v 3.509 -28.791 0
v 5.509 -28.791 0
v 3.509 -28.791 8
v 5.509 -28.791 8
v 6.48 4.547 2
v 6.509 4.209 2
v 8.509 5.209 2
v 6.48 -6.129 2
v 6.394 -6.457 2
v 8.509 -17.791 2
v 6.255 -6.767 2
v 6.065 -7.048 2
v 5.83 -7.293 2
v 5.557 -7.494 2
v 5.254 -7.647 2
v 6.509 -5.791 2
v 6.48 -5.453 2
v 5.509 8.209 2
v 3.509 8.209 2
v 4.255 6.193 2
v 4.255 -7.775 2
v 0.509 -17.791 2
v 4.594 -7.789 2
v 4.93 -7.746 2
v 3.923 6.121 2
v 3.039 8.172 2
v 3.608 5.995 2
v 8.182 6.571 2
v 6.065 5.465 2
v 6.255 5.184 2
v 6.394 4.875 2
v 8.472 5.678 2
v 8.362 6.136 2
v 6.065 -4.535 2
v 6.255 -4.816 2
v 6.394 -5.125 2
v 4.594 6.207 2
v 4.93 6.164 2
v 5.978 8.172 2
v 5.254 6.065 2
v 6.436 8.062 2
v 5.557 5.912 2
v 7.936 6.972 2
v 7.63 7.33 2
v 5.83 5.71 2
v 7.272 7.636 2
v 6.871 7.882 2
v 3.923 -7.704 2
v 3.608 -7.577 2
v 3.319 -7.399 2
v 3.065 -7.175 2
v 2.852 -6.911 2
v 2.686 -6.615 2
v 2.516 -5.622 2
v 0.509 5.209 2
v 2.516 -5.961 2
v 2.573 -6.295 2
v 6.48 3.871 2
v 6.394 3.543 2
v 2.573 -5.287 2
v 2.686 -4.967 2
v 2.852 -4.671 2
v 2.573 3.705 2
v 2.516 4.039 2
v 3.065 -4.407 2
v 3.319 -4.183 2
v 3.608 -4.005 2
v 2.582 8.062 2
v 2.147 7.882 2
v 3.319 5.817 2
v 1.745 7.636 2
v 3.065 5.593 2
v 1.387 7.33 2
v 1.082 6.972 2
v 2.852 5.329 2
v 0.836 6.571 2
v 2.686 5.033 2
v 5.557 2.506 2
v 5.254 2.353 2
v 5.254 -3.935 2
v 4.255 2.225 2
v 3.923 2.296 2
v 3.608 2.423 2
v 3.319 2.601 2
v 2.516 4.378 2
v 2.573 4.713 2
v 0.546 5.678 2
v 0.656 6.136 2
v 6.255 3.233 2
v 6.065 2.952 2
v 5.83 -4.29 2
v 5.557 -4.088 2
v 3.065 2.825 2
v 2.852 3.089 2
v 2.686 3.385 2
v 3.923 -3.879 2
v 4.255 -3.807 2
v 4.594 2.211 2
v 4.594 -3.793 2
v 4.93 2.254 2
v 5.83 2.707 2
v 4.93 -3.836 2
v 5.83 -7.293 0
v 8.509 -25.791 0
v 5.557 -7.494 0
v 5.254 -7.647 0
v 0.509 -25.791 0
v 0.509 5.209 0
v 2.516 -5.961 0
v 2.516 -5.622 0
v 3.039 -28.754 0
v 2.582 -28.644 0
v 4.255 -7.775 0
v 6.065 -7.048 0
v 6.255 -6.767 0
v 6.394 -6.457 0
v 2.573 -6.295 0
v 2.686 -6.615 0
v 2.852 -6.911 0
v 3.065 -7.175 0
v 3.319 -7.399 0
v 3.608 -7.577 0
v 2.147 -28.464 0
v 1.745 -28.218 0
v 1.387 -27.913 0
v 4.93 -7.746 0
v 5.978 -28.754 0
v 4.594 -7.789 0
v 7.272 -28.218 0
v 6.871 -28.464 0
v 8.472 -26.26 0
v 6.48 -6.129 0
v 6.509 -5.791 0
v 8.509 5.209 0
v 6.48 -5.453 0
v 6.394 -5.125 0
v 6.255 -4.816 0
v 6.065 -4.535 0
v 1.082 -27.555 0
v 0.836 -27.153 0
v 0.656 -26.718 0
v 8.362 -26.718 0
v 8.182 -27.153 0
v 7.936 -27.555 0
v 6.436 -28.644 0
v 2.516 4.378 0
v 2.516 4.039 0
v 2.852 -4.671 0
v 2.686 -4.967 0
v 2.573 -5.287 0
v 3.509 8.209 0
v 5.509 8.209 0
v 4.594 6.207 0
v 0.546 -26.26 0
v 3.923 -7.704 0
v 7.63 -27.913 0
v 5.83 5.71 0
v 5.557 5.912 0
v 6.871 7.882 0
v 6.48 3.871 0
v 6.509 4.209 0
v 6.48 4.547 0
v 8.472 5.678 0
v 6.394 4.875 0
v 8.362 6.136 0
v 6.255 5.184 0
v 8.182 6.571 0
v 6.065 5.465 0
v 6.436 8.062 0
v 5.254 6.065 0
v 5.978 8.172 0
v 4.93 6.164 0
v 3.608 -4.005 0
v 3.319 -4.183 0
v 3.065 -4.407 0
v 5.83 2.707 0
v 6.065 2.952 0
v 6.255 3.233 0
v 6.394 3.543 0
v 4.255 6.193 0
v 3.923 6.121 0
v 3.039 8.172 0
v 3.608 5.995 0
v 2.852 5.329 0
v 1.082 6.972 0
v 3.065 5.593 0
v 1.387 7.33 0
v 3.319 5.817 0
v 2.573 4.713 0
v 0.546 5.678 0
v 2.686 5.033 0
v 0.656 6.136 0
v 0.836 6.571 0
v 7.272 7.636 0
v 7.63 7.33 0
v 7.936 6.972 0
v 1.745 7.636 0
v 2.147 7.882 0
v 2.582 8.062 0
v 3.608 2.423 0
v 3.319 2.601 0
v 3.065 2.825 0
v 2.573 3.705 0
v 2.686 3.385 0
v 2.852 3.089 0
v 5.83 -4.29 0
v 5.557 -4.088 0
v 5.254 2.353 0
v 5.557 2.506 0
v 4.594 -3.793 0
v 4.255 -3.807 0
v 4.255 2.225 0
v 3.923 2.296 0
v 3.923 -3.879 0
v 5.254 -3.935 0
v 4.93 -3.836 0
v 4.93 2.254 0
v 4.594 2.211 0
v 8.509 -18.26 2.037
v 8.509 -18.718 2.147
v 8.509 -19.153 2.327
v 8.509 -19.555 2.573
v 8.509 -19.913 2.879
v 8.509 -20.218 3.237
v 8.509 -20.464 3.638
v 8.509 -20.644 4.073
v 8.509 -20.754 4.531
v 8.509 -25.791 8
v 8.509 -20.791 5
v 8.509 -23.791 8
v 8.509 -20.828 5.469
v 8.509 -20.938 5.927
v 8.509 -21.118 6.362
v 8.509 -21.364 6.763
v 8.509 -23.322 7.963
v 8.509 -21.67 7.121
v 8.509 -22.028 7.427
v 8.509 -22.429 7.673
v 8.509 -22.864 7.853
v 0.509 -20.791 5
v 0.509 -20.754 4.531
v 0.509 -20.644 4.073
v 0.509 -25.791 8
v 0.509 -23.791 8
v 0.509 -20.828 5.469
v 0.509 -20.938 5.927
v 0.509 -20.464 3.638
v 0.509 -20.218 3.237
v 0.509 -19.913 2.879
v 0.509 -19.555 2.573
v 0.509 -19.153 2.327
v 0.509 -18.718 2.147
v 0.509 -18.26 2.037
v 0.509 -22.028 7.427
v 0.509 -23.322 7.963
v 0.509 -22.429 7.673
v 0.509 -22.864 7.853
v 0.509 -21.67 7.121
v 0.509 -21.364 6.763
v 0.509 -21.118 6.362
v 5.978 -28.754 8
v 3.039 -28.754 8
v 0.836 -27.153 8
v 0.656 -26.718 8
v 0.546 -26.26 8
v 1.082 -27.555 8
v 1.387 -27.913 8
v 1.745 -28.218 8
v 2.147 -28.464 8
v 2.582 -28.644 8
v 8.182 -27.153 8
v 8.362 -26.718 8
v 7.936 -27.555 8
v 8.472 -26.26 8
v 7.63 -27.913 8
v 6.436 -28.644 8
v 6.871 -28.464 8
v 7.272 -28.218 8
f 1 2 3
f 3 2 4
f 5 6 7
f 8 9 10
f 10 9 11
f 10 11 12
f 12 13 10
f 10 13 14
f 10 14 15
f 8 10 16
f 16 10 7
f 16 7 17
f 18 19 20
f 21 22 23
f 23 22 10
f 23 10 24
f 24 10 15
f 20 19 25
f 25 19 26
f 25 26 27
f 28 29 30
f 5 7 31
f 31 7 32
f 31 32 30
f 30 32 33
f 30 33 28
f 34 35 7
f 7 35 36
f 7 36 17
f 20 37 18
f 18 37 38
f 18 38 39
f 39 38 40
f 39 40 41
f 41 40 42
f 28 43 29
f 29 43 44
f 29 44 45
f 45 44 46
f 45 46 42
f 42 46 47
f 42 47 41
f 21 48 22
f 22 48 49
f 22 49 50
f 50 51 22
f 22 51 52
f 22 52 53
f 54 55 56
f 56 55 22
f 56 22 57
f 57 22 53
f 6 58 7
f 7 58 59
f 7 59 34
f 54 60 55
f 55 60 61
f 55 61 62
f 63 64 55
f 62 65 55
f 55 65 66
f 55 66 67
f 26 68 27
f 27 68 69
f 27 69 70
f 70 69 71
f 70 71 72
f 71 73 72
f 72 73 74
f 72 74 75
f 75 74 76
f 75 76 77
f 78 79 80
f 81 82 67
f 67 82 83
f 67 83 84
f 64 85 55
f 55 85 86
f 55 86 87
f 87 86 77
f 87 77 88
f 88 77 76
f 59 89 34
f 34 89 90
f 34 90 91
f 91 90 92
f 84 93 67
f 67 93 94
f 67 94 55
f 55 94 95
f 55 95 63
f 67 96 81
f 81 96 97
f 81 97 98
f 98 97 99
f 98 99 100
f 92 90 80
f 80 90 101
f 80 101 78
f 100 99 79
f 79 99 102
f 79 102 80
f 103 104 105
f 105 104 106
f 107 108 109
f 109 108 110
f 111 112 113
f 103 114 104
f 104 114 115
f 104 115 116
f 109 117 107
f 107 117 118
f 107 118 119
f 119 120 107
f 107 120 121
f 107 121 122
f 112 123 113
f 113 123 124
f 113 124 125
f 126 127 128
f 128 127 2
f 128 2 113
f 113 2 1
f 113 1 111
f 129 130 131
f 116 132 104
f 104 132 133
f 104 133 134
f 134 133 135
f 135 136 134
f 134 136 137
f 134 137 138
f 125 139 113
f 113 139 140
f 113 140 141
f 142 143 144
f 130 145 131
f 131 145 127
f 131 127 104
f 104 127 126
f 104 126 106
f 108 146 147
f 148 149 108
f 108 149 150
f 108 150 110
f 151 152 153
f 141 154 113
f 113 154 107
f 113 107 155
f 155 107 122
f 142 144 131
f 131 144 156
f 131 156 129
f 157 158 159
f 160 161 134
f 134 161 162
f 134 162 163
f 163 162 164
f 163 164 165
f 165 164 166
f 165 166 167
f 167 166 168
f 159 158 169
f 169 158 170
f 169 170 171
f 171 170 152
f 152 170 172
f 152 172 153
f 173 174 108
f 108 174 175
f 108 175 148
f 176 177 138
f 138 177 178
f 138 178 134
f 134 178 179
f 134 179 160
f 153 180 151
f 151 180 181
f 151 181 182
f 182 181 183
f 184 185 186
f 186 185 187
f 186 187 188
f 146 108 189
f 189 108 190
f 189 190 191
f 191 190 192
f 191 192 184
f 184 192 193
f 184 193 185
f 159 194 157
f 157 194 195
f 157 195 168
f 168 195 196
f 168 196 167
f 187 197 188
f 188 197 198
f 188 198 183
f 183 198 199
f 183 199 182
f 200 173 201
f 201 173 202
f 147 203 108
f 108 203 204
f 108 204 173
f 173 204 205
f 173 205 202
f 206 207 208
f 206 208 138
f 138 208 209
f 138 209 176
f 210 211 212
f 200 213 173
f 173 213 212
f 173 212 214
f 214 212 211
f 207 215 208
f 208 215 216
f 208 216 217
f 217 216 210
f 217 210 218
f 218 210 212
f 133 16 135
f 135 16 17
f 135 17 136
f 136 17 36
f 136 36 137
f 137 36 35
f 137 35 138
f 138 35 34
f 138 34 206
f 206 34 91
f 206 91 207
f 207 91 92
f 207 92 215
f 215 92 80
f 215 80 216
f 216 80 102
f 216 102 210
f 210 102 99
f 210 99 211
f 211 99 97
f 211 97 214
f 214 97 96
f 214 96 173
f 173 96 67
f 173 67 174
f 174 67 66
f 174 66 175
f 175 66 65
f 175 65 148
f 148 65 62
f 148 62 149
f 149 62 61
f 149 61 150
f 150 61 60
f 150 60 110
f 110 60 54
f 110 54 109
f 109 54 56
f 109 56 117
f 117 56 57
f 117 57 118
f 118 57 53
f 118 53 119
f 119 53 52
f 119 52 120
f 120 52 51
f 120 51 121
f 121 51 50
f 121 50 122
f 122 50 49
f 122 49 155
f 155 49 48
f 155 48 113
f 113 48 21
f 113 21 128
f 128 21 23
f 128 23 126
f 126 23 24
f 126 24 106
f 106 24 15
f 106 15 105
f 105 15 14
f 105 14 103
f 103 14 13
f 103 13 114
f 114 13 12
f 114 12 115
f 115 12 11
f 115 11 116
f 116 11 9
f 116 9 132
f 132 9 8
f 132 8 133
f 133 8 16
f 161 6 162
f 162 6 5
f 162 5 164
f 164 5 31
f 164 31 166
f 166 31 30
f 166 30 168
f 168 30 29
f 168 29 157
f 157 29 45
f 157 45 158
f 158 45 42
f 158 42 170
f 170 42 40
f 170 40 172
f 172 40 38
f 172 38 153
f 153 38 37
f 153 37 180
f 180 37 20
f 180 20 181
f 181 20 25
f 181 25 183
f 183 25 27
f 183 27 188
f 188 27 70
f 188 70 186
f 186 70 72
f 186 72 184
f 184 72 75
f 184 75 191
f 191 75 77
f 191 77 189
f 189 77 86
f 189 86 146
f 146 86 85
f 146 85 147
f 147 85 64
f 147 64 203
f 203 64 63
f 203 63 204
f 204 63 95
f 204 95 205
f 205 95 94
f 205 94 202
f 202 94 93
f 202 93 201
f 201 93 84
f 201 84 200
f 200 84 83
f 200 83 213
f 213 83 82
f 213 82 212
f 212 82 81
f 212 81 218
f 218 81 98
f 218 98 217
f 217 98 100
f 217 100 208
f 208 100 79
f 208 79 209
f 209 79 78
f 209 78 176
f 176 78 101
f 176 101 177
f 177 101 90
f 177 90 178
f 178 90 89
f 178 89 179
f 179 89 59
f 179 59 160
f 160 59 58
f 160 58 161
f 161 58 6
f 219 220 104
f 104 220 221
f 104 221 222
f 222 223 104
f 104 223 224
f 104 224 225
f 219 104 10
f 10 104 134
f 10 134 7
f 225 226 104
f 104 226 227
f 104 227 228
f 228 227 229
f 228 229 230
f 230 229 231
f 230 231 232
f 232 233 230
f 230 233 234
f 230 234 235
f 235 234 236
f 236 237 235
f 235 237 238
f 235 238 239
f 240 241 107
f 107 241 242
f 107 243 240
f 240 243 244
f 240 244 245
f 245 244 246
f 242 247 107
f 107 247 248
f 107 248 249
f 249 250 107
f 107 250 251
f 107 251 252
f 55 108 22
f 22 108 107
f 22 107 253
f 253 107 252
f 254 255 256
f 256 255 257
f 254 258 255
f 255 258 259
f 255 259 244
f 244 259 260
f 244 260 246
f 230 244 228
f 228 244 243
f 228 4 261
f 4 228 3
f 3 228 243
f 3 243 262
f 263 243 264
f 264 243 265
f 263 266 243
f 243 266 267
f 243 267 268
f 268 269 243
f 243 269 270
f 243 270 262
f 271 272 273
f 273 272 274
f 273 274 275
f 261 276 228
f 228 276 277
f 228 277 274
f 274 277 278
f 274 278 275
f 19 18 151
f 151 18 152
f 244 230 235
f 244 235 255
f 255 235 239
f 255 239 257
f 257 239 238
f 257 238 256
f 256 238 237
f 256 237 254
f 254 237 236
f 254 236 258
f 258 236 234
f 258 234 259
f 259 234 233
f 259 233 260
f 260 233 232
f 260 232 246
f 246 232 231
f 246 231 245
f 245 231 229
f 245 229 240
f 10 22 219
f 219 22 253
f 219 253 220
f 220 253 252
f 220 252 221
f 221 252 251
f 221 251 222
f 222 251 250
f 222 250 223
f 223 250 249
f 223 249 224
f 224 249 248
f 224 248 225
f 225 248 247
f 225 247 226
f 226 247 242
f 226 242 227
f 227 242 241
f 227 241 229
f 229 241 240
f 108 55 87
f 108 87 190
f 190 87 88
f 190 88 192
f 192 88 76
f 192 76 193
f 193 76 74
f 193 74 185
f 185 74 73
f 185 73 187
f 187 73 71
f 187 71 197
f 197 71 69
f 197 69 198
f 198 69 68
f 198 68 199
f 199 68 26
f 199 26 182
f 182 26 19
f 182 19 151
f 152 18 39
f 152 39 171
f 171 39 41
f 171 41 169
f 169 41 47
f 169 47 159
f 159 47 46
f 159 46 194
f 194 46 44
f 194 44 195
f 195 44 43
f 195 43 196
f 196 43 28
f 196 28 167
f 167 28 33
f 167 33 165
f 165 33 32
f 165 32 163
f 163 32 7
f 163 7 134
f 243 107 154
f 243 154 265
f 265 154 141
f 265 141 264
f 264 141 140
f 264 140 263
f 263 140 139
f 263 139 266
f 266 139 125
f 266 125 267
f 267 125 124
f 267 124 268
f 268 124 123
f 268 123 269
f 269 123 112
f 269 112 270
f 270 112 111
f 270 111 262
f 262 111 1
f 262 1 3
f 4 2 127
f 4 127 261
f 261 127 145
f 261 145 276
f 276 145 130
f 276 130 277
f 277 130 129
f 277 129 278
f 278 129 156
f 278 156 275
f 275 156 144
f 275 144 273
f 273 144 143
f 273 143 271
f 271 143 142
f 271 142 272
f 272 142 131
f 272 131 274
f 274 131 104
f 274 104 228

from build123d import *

# Parameters (mm, degrees)
SKETCH1_W            = 65
SKETCH1_H            = 48
BOSS_EXTRUDE1_DEPTH  = 2
M3_CLEARANCE_HOLE1_D = 4
SKETCH5_W            = 8
SKETCH5_H            = 8
BOSS_EXTRUDE2_DEPTH  = 6
CUT_EXTRUDE1_DEPTH   = 48.271281194
FILLET4_R            = 3


with BuildPart() as part:
    # Sketch1 → Boss-Extrude1 (new body)
    with BuildSketch(Plane.XY):
        with Locations((4.50867052, -4.791184971)):
            Rectangle(SKETCH1_W, SKETCH1_H)
    extrude(amount=BOSS_EXTRUDE1_DEPTH)

    # M3 Clearance Hole1 (through all)
    with Locations(Plane.XY.offset(2)):
        with Locations((4.50867052, 4.208815029), (4.50867052, -5.791184971)):
            Hole(M3_CLEARANCE_HOLE1_D / 2)

    # Sketch5 → Boss-Extrude2 (add)
    with BuildSketch(Plane.XY.offset(2)):
        with Locations((4.50867052, -24.791184971)):
            Rectangle(SKETCH5_W, SKETCH5_H)
    extrude(amount=BOSS_EXTRUDE2_DEPTH)

    # Sketch6 → Cut-Extrude1 (cut, through all)
    with BuildSketch(Plane.XY.offset(2)):
        Polygon((-27.99132948, -28.791184971), (0.50867052, -28.791184971), (0.50867052, -20.791184971), (0.50867052, 8.208815029), (8.50867052, 8.208815029), (8.50867052, -20.791184971), (8.50867052, -28.791184971), (37.00867052, -28.791184971), (37.00867052, 19.208815029), (-27.99132948, 19.208815029), align=None)
    extrude(amount=-CUT_EXTRUDE1_DEPTH, mode=Mode.SUBTRACT)

    # Fillet4
    fillet4_edges = [part.edges().sort_by_distance(p)[0] for p in [
        (8.50867052, -28.791184971, 4),
        (4.50867052, -20.791184971, 2),
        (4.50867052, -20.791184971, 8),
        (0.50867052, 8.208815029, 1),
        (8.50867052, 8.208815029, 1),
        (0.50867052, -28.791184971, 4),
    ]]
    fillet(fillet4_edges, radius=FILLET4_R - 0.0001)  # a hair under: the kernel refuses the full size


solid = part.part
